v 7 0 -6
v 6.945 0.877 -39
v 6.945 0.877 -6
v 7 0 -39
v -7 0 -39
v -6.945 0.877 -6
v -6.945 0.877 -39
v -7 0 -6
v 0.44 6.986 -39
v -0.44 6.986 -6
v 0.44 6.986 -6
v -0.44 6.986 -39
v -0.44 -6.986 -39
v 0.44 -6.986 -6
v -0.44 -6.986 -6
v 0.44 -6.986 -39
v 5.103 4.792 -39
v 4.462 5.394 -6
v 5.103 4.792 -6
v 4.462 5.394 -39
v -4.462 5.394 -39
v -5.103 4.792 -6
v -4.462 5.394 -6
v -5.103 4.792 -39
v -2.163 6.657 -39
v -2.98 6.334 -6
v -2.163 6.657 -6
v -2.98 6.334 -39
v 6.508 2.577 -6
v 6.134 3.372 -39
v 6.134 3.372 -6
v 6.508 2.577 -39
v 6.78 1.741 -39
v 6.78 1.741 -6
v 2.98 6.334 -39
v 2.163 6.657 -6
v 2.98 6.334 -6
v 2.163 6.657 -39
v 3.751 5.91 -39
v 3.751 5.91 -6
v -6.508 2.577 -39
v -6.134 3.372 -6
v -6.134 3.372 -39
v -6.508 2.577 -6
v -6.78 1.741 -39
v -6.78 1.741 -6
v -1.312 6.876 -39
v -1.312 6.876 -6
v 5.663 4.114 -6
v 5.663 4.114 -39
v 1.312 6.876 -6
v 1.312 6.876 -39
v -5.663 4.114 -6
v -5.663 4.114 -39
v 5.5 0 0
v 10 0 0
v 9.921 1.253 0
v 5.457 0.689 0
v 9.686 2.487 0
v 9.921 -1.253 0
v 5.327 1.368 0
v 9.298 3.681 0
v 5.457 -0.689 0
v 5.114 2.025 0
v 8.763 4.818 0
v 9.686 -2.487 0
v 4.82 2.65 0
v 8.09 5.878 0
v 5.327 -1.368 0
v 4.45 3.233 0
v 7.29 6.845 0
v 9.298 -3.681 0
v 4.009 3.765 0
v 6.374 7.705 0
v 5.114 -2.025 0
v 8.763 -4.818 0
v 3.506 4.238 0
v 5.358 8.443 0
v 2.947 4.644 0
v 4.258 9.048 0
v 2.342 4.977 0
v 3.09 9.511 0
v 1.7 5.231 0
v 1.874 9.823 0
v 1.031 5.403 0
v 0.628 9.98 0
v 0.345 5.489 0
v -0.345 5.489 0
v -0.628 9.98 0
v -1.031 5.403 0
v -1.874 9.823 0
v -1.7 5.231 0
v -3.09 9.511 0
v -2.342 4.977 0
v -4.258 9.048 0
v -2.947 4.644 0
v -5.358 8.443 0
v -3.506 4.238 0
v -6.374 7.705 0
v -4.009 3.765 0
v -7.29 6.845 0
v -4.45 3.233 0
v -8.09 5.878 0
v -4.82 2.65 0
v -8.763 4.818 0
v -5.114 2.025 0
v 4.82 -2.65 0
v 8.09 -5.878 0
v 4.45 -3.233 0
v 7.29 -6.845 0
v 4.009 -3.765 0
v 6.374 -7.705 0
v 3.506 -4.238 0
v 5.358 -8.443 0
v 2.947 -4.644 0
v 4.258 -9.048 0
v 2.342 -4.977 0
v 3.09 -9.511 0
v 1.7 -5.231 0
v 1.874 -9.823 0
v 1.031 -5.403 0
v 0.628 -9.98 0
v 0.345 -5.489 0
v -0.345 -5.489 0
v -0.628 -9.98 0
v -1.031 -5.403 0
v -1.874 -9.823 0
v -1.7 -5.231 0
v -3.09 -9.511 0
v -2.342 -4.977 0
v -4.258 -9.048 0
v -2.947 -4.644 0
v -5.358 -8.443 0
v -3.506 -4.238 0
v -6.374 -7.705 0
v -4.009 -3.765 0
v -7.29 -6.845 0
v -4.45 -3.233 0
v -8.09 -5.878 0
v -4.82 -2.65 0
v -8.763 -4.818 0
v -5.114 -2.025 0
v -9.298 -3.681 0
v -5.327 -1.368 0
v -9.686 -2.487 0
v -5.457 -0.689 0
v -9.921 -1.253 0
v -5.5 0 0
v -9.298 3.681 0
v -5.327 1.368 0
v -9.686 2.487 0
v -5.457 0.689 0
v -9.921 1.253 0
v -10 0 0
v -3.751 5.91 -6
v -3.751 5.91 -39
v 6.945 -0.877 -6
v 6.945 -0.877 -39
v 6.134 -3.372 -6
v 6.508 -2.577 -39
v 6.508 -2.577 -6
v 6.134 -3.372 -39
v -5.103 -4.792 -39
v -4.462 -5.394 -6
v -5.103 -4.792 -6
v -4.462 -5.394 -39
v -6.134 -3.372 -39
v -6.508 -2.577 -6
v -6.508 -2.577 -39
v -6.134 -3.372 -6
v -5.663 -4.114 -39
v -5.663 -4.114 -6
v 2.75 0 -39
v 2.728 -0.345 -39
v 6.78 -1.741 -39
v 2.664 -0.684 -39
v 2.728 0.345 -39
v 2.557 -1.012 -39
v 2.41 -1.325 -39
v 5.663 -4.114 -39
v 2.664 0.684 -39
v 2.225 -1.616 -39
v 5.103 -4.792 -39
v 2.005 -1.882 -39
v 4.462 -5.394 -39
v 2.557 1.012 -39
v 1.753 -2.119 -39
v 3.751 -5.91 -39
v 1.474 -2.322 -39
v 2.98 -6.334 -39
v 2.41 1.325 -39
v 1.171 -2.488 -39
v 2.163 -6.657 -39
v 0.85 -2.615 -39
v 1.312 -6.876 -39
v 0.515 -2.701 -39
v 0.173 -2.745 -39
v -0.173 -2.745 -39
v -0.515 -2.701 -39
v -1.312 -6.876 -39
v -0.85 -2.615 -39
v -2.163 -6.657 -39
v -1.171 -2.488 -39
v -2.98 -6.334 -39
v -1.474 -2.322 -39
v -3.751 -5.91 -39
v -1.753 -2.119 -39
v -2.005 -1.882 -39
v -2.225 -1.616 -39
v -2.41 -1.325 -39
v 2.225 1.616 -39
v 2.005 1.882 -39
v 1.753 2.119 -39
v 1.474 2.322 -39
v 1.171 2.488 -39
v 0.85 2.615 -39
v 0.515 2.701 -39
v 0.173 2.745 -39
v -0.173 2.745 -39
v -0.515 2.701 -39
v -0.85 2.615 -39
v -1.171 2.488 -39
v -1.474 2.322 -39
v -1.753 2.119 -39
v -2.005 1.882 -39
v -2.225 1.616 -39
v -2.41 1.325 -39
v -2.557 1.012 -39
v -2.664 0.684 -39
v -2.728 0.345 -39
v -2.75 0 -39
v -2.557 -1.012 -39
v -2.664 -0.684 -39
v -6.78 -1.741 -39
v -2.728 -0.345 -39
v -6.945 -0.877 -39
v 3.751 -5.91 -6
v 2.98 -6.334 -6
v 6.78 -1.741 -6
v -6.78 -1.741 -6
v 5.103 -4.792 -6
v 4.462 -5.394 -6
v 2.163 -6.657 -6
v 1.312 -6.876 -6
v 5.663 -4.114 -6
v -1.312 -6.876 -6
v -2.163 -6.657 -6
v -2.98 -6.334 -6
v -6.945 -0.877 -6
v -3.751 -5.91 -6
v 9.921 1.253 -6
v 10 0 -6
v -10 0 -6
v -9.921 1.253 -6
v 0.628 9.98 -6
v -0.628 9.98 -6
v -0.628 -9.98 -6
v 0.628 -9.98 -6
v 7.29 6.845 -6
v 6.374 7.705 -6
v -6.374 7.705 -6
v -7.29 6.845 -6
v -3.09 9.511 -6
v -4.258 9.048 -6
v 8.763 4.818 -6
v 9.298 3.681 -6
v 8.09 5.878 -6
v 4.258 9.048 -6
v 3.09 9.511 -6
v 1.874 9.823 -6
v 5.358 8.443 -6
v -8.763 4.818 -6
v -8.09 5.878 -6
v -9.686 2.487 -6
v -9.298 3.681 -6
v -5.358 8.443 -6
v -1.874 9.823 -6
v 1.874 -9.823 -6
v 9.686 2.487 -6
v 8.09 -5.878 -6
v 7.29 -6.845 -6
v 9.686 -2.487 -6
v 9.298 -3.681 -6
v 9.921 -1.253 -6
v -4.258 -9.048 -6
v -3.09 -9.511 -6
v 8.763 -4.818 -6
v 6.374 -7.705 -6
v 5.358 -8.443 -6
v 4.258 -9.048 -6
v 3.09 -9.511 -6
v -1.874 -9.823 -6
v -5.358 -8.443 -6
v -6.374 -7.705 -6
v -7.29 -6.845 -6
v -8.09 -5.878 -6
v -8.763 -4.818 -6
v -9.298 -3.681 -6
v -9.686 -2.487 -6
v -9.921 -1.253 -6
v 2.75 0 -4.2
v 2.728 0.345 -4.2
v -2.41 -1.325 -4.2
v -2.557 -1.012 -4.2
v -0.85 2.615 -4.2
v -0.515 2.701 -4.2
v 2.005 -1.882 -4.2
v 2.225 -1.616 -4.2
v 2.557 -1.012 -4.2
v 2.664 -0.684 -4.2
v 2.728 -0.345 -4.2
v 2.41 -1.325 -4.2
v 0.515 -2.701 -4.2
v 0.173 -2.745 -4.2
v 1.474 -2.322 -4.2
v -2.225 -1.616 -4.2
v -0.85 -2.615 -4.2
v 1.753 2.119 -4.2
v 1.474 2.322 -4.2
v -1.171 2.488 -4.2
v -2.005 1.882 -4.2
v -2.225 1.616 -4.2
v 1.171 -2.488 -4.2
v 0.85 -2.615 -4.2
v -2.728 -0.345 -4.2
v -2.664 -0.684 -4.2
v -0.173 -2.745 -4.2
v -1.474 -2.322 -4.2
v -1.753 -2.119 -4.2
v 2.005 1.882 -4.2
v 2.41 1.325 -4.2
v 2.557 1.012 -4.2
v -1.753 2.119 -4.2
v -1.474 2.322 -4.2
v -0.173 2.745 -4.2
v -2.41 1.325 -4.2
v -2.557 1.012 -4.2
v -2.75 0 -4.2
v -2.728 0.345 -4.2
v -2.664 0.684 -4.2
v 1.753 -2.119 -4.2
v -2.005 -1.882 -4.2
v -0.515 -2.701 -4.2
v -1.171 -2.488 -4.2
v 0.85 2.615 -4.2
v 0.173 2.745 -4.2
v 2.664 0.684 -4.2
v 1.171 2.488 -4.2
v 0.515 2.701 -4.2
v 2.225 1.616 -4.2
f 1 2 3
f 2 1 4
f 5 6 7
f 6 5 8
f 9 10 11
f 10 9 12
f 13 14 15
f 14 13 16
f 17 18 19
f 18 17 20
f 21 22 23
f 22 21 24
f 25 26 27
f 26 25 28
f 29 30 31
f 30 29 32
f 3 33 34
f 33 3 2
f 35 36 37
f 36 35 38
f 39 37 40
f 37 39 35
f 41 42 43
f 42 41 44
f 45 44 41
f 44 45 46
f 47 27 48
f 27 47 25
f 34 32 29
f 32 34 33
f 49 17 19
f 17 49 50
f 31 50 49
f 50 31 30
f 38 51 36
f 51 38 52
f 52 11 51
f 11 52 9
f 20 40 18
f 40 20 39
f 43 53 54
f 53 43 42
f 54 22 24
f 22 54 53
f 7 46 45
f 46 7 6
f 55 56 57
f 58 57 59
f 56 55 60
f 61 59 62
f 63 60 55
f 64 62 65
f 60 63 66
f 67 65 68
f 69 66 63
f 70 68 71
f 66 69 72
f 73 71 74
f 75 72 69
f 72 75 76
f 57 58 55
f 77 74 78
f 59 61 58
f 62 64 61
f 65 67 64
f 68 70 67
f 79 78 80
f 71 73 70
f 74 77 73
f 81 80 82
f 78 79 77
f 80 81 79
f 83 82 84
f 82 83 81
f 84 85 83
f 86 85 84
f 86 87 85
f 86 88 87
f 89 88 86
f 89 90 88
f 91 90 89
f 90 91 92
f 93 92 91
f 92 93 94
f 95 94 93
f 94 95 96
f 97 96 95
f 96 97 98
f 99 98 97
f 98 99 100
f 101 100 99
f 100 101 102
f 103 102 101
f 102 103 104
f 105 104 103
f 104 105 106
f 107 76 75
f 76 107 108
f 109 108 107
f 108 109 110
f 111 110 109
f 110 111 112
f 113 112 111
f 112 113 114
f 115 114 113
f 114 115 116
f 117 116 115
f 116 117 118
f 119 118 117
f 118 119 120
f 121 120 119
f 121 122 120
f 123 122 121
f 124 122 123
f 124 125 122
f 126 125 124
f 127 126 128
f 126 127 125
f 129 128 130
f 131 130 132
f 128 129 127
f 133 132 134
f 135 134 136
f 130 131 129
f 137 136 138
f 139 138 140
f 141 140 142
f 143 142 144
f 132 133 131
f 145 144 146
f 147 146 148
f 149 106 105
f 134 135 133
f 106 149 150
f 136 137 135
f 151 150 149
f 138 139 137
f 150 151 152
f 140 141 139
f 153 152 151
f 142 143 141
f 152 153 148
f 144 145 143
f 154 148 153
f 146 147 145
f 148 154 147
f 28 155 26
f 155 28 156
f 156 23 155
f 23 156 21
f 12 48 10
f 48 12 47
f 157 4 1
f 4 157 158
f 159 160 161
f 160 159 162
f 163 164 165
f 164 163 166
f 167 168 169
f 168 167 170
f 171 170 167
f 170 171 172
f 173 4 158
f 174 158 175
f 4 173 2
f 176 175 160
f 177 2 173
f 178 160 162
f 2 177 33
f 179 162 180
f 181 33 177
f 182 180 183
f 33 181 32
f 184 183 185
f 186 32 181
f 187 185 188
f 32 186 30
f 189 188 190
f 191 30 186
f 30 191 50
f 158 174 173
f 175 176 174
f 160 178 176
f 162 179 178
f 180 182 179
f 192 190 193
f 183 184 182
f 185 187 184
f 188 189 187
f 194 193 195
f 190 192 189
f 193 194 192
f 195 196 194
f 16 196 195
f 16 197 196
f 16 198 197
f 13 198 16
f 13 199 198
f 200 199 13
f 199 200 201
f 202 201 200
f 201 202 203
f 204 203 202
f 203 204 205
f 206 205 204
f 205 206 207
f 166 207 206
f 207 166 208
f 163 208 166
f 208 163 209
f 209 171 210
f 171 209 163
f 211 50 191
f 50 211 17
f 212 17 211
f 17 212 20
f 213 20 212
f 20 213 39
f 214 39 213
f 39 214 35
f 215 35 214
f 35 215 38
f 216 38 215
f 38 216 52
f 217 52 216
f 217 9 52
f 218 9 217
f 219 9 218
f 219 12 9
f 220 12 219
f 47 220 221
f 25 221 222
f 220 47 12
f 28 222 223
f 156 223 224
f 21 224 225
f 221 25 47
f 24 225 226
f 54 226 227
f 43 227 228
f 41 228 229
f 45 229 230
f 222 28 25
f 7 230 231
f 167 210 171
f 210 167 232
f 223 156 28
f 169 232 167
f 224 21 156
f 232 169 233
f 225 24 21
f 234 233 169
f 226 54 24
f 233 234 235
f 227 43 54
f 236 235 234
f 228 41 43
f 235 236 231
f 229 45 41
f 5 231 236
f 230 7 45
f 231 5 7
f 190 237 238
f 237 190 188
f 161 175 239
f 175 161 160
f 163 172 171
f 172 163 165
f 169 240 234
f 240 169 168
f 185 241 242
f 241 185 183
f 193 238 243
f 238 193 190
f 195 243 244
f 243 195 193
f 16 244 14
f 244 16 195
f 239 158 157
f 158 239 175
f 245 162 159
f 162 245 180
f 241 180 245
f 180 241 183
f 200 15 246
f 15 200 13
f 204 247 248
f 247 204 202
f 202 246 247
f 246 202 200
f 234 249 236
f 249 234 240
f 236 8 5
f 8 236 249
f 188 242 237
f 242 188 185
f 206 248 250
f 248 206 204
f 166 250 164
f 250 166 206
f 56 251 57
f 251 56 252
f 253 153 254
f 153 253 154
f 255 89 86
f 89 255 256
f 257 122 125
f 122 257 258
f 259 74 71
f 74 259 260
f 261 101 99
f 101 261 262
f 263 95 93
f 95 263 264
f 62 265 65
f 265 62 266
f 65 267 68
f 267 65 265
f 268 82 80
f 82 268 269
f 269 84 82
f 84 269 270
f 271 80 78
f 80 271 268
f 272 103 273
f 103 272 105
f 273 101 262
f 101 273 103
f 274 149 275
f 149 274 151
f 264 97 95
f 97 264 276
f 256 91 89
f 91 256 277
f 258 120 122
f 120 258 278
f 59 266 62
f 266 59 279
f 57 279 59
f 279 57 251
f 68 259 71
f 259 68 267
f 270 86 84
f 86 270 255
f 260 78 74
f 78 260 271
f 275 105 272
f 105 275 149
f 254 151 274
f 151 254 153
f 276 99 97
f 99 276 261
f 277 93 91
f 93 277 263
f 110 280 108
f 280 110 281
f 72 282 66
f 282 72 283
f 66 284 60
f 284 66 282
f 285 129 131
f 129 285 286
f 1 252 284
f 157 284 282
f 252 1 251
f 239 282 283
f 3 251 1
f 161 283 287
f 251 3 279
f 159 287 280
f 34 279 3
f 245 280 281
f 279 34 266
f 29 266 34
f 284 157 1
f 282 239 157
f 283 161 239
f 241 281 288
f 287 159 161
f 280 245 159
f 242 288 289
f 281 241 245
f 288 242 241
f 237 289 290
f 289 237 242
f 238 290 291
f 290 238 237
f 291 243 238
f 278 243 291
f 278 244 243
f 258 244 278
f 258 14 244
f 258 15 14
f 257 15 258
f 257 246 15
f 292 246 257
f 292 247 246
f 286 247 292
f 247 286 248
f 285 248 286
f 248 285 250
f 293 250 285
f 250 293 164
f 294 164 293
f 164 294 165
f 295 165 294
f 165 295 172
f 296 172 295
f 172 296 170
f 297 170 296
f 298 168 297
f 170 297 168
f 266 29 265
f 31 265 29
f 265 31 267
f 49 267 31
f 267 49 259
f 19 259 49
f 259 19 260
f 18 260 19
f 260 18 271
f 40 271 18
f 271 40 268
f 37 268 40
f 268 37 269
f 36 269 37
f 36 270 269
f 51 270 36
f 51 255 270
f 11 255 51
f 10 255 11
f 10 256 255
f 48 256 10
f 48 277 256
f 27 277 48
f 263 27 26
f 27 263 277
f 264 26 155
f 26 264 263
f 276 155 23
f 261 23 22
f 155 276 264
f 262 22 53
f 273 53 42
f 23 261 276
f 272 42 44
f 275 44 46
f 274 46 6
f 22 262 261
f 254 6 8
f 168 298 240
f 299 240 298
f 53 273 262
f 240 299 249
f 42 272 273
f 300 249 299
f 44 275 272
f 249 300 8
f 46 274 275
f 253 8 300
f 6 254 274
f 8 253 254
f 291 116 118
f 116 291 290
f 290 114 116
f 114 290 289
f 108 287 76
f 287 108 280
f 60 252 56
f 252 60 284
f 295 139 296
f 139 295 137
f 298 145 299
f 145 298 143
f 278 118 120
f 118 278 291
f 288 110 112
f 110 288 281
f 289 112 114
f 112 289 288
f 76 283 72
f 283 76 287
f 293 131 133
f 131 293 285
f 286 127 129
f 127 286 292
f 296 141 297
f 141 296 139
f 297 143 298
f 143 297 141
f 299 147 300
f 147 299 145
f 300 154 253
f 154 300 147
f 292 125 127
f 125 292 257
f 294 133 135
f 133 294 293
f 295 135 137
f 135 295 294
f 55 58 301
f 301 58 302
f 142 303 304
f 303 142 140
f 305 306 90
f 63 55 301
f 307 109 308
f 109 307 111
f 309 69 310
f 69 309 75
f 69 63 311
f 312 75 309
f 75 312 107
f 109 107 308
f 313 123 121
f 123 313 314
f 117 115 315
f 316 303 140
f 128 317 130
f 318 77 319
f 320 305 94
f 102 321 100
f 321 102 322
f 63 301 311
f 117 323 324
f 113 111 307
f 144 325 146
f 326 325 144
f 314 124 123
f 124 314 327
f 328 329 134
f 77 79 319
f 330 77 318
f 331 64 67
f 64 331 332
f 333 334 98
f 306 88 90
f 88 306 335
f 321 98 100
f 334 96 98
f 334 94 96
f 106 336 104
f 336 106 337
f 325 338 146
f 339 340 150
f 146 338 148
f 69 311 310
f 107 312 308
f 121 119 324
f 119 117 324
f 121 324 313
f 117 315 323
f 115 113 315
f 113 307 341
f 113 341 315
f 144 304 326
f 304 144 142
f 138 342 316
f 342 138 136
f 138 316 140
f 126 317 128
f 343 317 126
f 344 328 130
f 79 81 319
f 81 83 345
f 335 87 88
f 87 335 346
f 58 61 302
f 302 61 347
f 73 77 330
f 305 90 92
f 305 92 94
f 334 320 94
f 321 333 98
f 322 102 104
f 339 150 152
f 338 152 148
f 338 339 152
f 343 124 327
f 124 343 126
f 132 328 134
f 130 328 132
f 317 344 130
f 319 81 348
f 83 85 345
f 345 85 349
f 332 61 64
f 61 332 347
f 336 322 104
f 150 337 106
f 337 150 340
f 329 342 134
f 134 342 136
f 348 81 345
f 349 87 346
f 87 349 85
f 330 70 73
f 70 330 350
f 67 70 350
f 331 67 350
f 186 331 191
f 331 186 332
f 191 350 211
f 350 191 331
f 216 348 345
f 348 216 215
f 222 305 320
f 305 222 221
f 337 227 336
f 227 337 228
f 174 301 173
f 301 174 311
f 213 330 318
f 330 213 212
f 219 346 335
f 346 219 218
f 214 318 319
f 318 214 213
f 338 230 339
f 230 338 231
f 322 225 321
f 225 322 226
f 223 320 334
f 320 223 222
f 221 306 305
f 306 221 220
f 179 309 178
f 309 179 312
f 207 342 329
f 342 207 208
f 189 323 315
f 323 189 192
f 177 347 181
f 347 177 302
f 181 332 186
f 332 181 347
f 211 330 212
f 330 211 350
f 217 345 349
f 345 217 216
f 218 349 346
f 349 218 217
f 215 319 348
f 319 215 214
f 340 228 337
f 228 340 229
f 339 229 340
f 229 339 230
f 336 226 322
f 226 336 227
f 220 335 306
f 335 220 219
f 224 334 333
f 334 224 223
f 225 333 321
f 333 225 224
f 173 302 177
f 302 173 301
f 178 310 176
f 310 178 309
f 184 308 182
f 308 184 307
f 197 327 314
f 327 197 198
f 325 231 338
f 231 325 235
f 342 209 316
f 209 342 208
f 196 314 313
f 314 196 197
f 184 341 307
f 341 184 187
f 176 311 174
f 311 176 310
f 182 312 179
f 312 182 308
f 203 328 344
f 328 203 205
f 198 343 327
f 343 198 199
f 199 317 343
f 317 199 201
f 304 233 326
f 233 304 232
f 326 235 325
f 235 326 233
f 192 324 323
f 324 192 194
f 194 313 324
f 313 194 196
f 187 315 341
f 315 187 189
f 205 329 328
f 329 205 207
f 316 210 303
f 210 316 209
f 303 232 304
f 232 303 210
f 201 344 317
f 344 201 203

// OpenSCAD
$fn = 50;


difference() {
	union() {
		translate(v = [0, 0, -39.0000000000]) {
			cylinder(h = 39, r = 7.0000000000);
		}
		translate(v = [0, 0, -6.0000000000]) {
			cylinder(h = 6, r = 10.0000000000);
		}
	}
	union() {
		translate(v = [0, 0, 0]) {
			rotate(a = [0, 0, 0]) {
				difference() {
					union() {
						#translate(v = [0, 0, -39.0000000000]) {
							cylinder(h = 39, r = 2.2500000000);
						}
						#translate(v = [0, 0, -4.2000000000]) {
							cylinder(h = 4.2000000000, r1 = 2.7500000000, r2 = 5.5000000000);
						}
						#translate(v = [0, 0, -39.0000000000]) {
							cylinder(h = 39, r = 2.7500000000);
						}
						#translate(v = [0, 0, -39.0000000000]) {
							cylinder(h = 39, r = 2.2500000000);
						}
					}
					union();
				}
			}
		}
	}
}
